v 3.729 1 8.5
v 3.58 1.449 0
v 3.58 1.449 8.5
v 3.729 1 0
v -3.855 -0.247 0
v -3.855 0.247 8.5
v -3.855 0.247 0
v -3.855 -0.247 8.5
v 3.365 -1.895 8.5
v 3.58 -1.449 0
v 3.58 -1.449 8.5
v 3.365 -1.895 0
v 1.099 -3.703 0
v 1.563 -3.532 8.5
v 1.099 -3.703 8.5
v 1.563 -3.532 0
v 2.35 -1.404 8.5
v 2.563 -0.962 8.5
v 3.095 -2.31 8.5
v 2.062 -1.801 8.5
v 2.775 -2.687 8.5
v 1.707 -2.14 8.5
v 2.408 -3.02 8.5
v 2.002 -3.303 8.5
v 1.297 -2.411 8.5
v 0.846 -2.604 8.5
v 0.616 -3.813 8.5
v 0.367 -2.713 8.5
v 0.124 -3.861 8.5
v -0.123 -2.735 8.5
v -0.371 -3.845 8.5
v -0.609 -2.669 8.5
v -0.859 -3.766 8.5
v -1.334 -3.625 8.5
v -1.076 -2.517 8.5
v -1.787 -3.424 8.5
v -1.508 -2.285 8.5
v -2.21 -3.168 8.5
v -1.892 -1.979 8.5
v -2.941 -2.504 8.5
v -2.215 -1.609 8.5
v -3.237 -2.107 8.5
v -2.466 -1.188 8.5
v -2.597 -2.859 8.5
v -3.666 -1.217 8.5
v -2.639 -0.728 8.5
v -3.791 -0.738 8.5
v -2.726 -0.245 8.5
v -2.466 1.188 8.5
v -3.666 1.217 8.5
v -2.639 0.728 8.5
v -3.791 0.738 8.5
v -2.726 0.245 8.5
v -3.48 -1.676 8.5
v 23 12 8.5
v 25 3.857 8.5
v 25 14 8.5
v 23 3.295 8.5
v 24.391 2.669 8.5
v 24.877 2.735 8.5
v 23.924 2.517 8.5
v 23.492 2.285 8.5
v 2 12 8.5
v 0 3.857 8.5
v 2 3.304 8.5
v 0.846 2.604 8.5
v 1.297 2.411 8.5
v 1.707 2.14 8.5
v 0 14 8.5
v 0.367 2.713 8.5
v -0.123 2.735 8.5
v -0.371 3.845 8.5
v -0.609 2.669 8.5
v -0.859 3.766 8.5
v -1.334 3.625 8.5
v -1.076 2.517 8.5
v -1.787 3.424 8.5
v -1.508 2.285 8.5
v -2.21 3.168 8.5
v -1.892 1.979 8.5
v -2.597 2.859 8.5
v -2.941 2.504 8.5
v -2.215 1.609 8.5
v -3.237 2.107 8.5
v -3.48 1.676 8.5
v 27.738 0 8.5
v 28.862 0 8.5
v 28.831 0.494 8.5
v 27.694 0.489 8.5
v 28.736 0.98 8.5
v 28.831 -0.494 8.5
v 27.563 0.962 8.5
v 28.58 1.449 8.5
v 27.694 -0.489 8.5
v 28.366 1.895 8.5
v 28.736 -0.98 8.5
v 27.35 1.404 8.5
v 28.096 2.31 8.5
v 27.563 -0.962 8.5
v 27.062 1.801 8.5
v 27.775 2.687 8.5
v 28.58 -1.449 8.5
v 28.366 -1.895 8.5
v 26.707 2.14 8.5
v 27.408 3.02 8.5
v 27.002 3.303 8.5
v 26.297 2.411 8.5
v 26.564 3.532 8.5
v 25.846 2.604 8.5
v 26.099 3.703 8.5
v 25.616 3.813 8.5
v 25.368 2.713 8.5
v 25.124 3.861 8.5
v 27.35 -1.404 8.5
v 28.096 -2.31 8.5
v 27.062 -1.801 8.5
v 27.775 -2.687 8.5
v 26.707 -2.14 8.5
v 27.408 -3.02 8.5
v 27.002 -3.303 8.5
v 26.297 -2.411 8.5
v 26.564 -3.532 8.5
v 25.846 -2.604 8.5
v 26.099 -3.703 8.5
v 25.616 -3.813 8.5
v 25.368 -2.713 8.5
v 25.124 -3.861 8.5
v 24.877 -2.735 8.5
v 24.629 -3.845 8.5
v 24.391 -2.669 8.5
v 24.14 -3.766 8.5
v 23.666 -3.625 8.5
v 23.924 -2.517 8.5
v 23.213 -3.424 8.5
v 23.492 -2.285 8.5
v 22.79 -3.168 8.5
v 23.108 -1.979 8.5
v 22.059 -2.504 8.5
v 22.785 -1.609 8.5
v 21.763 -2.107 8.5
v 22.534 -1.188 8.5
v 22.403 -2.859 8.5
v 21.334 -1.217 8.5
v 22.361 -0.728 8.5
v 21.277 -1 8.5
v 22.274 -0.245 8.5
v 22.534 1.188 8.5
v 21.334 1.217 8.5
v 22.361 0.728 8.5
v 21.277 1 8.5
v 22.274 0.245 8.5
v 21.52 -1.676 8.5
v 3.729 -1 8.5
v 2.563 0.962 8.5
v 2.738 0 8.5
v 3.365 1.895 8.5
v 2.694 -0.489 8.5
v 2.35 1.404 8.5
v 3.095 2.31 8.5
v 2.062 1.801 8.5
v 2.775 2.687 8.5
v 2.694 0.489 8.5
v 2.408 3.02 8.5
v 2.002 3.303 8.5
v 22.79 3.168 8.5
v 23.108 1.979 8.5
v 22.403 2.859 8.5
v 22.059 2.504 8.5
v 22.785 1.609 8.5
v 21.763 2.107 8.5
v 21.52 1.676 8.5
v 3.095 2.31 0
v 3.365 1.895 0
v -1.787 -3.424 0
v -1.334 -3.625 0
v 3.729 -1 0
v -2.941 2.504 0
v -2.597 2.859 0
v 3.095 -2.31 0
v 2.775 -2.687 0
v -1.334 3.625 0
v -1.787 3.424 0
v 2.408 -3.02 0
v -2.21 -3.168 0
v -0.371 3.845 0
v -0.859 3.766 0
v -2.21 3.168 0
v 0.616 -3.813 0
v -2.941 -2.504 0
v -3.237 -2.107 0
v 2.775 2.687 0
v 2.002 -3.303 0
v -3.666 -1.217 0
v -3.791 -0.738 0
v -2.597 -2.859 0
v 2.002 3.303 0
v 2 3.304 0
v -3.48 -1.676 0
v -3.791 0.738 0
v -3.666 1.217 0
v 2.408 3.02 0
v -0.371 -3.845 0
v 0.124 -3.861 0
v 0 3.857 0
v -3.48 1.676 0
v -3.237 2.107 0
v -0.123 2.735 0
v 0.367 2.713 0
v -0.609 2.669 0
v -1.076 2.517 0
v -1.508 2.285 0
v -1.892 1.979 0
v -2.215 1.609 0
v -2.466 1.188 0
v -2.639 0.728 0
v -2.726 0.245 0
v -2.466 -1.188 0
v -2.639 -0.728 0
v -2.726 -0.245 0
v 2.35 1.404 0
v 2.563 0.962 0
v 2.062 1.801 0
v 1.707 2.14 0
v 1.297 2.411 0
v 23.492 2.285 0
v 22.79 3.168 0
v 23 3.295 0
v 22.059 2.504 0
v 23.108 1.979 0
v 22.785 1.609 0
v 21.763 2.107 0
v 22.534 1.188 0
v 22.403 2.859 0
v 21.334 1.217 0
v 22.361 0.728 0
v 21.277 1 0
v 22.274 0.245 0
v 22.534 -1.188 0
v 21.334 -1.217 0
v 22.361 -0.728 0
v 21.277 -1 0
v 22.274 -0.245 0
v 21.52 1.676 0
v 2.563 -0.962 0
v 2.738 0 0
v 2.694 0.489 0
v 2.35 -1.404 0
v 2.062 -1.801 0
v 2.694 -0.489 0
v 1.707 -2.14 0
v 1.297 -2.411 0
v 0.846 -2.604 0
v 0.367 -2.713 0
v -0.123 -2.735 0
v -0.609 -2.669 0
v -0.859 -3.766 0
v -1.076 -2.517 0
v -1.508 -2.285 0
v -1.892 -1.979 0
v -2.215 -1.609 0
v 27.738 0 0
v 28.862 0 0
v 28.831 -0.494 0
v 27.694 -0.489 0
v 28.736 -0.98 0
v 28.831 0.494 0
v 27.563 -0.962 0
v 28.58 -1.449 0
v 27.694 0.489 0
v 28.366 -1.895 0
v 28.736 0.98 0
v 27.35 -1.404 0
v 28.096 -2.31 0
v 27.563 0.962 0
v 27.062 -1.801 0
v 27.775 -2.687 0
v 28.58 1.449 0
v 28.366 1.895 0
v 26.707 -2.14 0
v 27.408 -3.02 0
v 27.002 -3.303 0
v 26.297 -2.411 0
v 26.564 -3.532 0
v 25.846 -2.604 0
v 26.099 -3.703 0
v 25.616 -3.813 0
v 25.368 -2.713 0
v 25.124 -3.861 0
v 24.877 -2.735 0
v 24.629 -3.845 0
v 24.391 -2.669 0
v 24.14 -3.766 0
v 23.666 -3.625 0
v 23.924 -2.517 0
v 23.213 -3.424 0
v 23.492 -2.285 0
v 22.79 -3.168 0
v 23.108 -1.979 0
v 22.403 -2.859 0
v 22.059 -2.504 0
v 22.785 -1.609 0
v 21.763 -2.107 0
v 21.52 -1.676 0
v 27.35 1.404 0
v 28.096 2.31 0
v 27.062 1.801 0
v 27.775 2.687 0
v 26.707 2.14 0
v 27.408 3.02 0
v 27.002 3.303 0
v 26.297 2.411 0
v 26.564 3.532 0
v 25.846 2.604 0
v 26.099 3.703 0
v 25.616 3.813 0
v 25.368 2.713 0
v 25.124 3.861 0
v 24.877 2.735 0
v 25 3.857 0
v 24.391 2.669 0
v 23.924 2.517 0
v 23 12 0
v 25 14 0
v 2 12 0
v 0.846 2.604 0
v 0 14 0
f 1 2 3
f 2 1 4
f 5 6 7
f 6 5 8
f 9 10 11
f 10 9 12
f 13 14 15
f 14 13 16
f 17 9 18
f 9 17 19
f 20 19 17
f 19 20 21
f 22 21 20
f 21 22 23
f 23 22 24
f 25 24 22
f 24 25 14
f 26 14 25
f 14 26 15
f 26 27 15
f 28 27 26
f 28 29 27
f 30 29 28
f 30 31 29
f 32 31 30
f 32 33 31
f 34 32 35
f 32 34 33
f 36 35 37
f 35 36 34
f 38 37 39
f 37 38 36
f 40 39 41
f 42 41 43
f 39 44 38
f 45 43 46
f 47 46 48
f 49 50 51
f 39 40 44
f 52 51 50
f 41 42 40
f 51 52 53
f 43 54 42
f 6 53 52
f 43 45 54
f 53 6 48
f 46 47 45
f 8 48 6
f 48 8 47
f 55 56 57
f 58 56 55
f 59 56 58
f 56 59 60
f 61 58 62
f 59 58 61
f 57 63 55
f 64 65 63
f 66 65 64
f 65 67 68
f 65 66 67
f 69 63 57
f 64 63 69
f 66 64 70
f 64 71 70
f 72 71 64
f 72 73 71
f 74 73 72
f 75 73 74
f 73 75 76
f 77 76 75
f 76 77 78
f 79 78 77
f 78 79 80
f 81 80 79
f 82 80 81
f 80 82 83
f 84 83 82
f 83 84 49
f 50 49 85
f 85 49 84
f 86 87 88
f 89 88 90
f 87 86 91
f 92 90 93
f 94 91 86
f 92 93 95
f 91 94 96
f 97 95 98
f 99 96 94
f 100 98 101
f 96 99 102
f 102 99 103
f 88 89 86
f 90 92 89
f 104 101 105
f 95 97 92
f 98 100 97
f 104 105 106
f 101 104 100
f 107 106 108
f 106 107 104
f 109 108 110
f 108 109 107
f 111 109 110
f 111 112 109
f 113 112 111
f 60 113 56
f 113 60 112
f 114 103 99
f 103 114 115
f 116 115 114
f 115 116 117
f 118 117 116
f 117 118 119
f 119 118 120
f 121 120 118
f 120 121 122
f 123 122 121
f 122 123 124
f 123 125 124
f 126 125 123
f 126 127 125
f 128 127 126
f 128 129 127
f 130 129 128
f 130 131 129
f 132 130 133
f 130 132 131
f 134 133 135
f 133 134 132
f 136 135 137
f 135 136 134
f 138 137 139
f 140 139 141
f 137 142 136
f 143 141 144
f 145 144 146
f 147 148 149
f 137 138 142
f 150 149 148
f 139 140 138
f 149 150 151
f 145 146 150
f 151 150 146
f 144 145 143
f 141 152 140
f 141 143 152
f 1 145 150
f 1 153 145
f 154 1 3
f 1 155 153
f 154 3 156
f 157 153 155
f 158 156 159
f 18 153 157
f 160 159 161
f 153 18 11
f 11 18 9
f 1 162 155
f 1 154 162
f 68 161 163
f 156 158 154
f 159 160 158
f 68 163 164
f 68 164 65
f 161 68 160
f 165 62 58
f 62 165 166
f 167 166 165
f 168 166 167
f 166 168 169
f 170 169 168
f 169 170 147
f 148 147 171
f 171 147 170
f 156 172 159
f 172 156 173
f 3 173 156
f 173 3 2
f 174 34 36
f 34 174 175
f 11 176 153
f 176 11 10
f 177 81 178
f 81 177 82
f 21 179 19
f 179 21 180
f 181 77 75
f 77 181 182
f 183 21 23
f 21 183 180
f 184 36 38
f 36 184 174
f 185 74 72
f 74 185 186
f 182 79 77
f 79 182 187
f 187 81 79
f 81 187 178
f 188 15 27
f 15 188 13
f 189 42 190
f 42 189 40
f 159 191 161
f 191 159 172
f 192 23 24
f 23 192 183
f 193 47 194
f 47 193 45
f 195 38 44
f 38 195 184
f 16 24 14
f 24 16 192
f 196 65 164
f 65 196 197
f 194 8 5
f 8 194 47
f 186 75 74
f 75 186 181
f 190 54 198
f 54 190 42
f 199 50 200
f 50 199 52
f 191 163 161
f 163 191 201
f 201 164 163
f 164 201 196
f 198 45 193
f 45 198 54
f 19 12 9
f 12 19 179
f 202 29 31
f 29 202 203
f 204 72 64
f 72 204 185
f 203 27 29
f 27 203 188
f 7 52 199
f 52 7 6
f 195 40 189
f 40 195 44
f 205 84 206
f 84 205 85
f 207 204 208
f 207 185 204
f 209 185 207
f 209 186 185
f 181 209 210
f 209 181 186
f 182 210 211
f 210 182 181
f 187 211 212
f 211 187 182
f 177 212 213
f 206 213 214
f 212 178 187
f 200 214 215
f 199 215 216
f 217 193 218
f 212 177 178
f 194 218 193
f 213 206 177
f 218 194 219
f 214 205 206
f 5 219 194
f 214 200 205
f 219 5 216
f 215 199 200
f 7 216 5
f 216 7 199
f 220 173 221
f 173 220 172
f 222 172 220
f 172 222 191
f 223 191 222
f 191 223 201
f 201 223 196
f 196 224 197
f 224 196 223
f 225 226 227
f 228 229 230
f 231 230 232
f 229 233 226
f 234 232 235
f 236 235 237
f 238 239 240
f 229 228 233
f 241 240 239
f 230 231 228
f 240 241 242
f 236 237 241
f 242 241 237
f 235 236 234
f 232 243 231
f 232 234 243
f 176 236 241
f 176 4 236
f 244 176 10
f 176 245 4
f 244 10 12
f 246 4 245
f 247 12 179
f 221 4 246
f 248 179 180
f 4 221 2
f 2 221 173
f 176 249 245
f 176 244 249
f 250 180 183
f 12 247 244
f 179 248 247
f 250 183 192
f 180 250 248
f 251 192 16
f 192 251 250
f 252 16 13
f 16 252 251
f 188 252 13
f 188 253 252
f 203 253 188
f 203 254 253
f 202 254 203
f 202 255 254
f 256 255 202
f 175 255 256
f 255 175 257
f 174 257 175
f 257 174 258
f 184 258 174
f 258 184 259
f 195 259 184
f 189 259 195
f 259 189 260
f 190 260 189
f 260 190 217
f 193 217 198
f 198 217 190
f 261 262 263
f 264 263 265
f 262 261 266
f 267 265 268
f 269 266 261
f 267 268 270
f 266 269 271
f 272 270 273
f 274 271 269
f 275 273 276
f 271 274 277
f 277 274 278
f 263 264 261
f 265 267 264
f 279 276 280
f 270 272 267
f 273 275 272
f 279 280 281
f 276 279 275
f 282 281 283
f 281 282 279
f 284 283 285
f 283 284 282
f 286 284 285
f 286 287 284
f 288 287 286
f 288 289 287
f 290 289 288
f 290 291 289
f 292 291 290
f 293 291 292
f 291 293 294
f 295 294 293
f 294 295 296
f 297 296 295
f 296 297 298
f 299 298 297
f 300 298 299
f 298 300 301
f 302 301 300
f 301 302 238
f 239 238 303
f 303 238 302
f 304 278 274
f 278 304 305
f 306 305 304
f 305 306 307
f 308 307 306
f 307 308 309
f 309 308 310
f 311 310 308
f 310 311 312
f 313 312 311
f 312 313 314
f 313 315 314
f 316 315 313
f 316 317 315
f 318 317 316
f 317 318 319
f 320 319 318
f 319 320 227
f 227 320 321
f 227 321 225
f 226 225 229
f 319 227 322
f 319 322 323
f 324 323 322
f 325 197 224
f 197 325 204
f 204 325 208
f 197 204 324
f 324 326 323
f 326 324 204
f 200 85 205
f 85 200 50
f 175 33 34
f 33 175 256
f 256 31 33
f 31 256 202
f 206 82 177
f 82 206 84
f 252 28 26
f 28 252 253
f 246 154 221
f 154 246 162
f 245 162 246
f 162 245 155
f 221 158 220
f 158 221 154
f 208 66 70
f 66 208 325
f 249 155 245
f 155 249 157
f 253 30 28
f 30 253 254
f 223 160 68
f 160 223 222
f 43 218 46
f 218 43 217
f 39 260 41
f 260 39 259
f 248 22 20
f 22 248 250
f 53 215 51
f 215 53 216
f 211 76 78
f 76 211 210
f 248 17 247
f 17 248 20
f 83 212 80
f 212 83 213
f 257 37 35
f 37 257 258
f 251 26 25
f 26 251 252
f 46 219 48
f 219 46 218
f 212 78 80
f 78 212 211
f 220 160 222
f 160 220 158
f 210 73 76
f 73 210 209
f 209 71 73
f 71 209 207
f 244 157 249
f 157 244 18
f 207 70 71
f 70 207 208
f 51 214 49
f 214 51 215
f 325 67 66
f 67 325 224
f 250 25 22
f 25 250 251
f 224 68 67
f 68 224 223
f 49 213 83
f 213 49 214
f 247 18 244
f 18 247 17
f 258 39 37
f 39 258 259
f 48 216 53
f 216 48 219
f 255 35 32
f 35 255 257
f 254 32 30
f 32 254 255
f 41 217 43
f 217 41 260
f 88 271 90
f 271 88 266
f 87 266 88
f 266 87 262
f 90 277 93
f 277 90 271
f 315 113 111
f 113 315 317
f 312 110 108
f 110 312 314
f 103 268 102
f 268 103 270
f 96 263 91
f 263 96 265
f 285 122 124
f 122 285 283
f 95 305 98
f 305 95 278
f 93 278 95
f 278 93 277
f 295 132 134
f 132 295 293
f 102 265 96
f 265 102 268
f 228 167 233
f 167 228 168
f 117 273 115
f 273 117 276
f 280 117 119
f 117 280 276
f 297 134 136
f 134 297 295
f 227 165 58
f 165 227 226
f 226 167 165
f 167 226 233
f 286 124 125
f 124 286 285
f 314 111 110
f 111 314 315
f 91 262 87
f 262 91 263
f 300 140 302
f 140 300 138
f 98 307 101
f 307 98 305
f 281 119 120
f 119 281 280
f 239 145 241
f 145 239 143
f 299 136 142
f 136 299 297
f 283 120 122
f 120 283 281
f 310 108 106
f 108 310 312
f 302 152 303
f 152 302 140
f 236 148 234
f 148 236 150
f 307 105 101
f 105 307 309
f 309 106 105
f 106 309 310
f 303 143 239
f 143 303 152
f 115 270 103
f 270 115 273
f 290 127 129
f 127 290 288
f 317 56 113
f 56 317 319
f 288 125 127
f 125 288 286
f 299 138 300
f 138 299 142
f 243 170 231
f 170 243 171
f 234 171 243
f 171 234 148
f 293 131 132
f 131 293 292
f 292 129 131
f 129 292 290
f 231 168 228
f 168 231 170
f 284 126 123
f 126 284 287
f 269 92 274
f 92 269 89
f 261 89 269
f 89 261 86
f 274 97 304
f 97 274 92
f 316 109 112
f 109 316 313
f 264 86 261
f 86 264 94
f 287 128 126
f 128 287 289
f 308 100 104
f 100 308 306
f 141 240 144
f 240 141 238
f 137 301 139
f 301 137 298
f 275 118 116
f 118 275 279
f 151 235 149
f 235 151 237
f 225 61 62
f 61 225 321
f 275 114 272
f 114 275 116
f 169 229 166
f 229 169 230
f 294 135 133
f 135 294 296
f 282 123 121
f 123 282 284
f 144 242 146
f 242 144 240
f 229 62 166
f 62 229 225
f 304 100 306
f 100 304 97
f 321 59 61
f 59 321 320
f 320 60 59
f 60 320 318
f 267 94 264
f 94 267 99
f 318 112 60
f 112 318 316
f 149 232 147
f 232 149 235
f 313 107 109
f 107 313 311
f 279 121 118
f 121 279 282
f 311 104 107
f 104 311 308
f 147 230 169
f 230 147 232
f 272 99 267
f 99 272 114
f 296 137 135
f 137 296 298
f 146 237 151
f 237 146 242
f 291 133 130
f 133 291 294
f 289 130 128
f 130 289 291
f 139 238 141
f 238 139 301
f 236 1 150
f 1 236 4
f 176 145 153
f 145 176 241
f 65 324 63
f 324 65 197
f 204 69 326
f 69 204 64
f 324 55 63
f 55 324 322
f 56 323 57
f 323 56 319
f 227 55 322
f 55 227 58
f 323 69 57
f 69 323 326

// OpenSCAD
standoff_width = 6;
standoff_spacing = 25;
height = 8.5;
wall_thickness = 2;
buzzer_width = 12;

anti_warp = .15;
filament_width = 1.75;

function anti_warp_widen(v) = v + (filament_width * anti_warp) * 2;
function anti_warp_shrink(v) = v - (filament_width * anti_warp) * 2;

$fs = $preview ? 1 : 0.5;
$fa = $preview ? 10 : 5;

module standoff_holder(height) {
	assert(height > 0);
	difference() {
		cylinder(h = height, d = anti_warp_widen(standoff_width * 1.2));
		cylinder(h = height, d = anti_warp_shrink(standoff_width));
	}
}

module standoffs(height) {
	standoff_holder(height);
	translate([standoff_spacing, 0]) standoff_holder(height);
}

module main() {
	standoffs(height);
	translate([standoff_width / 2, -wall_thickness / 2]) cube([standoff_spacing - standoff_width, wall_thickness, height]);
	translate([0, standoff_width / 2]) cube ([wall_thickness, buzzer_width - standoff_width / 2, height]);
	translate([standoff_spacing - wall_thickness, standoff_width / 2]) cube ([wall_thickness, buzzer_width - standoff_width / 2, height]);
	translate([0, buzzer_width]) cube([standoff_spacing, wall_thickness, height]);
}

main();
